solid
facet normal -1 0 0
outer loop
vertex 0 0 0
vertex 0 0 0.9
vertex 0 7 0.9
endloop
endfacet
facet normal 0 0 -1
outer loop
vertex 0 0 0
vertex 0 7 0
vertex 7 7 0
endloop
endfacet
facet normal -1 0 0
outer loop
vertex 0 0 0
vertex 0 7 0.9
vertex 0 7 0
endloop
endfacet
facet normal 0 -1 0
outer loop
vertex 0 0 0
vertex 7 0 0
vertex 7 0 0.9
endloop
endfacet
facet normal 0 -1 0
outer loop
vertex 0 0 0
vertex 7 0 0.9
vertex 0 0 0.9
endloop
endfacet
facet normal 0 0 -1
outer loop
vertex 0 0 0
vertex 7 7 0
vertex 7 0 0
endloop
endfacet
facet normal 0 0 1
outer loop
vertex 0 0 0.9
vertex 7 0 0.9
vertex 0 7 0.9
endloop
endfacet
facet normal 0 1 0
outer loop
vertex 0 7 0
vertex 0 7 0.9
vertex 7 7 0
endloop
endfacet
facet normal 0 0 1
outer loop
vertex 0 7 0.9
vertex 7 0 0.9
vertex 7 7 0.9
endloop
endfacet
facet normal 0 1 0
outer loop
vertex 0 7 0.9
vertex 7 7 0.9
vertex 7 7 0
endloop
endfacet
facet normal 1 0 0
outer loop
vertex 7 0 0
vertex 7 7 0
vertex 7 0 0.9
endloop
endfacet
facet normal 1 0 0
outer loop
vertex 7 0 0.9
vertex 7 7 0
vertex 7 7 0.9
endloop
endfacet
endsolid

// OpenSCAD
/* Warning, this is a very basic generator with a lot of approximation 
input data : [VQFN, UYX, 7x7x0.9mm, 48, , A, C04-00341A]
generated by com.zoubworld.electronics.cad.model3d.Basic
Date : Sun Feb 15 10:50:48 CET 2026
*/

//body
color("black")
translate([0,0,0])
cube([7.0,7.0,0.9], center=false);
